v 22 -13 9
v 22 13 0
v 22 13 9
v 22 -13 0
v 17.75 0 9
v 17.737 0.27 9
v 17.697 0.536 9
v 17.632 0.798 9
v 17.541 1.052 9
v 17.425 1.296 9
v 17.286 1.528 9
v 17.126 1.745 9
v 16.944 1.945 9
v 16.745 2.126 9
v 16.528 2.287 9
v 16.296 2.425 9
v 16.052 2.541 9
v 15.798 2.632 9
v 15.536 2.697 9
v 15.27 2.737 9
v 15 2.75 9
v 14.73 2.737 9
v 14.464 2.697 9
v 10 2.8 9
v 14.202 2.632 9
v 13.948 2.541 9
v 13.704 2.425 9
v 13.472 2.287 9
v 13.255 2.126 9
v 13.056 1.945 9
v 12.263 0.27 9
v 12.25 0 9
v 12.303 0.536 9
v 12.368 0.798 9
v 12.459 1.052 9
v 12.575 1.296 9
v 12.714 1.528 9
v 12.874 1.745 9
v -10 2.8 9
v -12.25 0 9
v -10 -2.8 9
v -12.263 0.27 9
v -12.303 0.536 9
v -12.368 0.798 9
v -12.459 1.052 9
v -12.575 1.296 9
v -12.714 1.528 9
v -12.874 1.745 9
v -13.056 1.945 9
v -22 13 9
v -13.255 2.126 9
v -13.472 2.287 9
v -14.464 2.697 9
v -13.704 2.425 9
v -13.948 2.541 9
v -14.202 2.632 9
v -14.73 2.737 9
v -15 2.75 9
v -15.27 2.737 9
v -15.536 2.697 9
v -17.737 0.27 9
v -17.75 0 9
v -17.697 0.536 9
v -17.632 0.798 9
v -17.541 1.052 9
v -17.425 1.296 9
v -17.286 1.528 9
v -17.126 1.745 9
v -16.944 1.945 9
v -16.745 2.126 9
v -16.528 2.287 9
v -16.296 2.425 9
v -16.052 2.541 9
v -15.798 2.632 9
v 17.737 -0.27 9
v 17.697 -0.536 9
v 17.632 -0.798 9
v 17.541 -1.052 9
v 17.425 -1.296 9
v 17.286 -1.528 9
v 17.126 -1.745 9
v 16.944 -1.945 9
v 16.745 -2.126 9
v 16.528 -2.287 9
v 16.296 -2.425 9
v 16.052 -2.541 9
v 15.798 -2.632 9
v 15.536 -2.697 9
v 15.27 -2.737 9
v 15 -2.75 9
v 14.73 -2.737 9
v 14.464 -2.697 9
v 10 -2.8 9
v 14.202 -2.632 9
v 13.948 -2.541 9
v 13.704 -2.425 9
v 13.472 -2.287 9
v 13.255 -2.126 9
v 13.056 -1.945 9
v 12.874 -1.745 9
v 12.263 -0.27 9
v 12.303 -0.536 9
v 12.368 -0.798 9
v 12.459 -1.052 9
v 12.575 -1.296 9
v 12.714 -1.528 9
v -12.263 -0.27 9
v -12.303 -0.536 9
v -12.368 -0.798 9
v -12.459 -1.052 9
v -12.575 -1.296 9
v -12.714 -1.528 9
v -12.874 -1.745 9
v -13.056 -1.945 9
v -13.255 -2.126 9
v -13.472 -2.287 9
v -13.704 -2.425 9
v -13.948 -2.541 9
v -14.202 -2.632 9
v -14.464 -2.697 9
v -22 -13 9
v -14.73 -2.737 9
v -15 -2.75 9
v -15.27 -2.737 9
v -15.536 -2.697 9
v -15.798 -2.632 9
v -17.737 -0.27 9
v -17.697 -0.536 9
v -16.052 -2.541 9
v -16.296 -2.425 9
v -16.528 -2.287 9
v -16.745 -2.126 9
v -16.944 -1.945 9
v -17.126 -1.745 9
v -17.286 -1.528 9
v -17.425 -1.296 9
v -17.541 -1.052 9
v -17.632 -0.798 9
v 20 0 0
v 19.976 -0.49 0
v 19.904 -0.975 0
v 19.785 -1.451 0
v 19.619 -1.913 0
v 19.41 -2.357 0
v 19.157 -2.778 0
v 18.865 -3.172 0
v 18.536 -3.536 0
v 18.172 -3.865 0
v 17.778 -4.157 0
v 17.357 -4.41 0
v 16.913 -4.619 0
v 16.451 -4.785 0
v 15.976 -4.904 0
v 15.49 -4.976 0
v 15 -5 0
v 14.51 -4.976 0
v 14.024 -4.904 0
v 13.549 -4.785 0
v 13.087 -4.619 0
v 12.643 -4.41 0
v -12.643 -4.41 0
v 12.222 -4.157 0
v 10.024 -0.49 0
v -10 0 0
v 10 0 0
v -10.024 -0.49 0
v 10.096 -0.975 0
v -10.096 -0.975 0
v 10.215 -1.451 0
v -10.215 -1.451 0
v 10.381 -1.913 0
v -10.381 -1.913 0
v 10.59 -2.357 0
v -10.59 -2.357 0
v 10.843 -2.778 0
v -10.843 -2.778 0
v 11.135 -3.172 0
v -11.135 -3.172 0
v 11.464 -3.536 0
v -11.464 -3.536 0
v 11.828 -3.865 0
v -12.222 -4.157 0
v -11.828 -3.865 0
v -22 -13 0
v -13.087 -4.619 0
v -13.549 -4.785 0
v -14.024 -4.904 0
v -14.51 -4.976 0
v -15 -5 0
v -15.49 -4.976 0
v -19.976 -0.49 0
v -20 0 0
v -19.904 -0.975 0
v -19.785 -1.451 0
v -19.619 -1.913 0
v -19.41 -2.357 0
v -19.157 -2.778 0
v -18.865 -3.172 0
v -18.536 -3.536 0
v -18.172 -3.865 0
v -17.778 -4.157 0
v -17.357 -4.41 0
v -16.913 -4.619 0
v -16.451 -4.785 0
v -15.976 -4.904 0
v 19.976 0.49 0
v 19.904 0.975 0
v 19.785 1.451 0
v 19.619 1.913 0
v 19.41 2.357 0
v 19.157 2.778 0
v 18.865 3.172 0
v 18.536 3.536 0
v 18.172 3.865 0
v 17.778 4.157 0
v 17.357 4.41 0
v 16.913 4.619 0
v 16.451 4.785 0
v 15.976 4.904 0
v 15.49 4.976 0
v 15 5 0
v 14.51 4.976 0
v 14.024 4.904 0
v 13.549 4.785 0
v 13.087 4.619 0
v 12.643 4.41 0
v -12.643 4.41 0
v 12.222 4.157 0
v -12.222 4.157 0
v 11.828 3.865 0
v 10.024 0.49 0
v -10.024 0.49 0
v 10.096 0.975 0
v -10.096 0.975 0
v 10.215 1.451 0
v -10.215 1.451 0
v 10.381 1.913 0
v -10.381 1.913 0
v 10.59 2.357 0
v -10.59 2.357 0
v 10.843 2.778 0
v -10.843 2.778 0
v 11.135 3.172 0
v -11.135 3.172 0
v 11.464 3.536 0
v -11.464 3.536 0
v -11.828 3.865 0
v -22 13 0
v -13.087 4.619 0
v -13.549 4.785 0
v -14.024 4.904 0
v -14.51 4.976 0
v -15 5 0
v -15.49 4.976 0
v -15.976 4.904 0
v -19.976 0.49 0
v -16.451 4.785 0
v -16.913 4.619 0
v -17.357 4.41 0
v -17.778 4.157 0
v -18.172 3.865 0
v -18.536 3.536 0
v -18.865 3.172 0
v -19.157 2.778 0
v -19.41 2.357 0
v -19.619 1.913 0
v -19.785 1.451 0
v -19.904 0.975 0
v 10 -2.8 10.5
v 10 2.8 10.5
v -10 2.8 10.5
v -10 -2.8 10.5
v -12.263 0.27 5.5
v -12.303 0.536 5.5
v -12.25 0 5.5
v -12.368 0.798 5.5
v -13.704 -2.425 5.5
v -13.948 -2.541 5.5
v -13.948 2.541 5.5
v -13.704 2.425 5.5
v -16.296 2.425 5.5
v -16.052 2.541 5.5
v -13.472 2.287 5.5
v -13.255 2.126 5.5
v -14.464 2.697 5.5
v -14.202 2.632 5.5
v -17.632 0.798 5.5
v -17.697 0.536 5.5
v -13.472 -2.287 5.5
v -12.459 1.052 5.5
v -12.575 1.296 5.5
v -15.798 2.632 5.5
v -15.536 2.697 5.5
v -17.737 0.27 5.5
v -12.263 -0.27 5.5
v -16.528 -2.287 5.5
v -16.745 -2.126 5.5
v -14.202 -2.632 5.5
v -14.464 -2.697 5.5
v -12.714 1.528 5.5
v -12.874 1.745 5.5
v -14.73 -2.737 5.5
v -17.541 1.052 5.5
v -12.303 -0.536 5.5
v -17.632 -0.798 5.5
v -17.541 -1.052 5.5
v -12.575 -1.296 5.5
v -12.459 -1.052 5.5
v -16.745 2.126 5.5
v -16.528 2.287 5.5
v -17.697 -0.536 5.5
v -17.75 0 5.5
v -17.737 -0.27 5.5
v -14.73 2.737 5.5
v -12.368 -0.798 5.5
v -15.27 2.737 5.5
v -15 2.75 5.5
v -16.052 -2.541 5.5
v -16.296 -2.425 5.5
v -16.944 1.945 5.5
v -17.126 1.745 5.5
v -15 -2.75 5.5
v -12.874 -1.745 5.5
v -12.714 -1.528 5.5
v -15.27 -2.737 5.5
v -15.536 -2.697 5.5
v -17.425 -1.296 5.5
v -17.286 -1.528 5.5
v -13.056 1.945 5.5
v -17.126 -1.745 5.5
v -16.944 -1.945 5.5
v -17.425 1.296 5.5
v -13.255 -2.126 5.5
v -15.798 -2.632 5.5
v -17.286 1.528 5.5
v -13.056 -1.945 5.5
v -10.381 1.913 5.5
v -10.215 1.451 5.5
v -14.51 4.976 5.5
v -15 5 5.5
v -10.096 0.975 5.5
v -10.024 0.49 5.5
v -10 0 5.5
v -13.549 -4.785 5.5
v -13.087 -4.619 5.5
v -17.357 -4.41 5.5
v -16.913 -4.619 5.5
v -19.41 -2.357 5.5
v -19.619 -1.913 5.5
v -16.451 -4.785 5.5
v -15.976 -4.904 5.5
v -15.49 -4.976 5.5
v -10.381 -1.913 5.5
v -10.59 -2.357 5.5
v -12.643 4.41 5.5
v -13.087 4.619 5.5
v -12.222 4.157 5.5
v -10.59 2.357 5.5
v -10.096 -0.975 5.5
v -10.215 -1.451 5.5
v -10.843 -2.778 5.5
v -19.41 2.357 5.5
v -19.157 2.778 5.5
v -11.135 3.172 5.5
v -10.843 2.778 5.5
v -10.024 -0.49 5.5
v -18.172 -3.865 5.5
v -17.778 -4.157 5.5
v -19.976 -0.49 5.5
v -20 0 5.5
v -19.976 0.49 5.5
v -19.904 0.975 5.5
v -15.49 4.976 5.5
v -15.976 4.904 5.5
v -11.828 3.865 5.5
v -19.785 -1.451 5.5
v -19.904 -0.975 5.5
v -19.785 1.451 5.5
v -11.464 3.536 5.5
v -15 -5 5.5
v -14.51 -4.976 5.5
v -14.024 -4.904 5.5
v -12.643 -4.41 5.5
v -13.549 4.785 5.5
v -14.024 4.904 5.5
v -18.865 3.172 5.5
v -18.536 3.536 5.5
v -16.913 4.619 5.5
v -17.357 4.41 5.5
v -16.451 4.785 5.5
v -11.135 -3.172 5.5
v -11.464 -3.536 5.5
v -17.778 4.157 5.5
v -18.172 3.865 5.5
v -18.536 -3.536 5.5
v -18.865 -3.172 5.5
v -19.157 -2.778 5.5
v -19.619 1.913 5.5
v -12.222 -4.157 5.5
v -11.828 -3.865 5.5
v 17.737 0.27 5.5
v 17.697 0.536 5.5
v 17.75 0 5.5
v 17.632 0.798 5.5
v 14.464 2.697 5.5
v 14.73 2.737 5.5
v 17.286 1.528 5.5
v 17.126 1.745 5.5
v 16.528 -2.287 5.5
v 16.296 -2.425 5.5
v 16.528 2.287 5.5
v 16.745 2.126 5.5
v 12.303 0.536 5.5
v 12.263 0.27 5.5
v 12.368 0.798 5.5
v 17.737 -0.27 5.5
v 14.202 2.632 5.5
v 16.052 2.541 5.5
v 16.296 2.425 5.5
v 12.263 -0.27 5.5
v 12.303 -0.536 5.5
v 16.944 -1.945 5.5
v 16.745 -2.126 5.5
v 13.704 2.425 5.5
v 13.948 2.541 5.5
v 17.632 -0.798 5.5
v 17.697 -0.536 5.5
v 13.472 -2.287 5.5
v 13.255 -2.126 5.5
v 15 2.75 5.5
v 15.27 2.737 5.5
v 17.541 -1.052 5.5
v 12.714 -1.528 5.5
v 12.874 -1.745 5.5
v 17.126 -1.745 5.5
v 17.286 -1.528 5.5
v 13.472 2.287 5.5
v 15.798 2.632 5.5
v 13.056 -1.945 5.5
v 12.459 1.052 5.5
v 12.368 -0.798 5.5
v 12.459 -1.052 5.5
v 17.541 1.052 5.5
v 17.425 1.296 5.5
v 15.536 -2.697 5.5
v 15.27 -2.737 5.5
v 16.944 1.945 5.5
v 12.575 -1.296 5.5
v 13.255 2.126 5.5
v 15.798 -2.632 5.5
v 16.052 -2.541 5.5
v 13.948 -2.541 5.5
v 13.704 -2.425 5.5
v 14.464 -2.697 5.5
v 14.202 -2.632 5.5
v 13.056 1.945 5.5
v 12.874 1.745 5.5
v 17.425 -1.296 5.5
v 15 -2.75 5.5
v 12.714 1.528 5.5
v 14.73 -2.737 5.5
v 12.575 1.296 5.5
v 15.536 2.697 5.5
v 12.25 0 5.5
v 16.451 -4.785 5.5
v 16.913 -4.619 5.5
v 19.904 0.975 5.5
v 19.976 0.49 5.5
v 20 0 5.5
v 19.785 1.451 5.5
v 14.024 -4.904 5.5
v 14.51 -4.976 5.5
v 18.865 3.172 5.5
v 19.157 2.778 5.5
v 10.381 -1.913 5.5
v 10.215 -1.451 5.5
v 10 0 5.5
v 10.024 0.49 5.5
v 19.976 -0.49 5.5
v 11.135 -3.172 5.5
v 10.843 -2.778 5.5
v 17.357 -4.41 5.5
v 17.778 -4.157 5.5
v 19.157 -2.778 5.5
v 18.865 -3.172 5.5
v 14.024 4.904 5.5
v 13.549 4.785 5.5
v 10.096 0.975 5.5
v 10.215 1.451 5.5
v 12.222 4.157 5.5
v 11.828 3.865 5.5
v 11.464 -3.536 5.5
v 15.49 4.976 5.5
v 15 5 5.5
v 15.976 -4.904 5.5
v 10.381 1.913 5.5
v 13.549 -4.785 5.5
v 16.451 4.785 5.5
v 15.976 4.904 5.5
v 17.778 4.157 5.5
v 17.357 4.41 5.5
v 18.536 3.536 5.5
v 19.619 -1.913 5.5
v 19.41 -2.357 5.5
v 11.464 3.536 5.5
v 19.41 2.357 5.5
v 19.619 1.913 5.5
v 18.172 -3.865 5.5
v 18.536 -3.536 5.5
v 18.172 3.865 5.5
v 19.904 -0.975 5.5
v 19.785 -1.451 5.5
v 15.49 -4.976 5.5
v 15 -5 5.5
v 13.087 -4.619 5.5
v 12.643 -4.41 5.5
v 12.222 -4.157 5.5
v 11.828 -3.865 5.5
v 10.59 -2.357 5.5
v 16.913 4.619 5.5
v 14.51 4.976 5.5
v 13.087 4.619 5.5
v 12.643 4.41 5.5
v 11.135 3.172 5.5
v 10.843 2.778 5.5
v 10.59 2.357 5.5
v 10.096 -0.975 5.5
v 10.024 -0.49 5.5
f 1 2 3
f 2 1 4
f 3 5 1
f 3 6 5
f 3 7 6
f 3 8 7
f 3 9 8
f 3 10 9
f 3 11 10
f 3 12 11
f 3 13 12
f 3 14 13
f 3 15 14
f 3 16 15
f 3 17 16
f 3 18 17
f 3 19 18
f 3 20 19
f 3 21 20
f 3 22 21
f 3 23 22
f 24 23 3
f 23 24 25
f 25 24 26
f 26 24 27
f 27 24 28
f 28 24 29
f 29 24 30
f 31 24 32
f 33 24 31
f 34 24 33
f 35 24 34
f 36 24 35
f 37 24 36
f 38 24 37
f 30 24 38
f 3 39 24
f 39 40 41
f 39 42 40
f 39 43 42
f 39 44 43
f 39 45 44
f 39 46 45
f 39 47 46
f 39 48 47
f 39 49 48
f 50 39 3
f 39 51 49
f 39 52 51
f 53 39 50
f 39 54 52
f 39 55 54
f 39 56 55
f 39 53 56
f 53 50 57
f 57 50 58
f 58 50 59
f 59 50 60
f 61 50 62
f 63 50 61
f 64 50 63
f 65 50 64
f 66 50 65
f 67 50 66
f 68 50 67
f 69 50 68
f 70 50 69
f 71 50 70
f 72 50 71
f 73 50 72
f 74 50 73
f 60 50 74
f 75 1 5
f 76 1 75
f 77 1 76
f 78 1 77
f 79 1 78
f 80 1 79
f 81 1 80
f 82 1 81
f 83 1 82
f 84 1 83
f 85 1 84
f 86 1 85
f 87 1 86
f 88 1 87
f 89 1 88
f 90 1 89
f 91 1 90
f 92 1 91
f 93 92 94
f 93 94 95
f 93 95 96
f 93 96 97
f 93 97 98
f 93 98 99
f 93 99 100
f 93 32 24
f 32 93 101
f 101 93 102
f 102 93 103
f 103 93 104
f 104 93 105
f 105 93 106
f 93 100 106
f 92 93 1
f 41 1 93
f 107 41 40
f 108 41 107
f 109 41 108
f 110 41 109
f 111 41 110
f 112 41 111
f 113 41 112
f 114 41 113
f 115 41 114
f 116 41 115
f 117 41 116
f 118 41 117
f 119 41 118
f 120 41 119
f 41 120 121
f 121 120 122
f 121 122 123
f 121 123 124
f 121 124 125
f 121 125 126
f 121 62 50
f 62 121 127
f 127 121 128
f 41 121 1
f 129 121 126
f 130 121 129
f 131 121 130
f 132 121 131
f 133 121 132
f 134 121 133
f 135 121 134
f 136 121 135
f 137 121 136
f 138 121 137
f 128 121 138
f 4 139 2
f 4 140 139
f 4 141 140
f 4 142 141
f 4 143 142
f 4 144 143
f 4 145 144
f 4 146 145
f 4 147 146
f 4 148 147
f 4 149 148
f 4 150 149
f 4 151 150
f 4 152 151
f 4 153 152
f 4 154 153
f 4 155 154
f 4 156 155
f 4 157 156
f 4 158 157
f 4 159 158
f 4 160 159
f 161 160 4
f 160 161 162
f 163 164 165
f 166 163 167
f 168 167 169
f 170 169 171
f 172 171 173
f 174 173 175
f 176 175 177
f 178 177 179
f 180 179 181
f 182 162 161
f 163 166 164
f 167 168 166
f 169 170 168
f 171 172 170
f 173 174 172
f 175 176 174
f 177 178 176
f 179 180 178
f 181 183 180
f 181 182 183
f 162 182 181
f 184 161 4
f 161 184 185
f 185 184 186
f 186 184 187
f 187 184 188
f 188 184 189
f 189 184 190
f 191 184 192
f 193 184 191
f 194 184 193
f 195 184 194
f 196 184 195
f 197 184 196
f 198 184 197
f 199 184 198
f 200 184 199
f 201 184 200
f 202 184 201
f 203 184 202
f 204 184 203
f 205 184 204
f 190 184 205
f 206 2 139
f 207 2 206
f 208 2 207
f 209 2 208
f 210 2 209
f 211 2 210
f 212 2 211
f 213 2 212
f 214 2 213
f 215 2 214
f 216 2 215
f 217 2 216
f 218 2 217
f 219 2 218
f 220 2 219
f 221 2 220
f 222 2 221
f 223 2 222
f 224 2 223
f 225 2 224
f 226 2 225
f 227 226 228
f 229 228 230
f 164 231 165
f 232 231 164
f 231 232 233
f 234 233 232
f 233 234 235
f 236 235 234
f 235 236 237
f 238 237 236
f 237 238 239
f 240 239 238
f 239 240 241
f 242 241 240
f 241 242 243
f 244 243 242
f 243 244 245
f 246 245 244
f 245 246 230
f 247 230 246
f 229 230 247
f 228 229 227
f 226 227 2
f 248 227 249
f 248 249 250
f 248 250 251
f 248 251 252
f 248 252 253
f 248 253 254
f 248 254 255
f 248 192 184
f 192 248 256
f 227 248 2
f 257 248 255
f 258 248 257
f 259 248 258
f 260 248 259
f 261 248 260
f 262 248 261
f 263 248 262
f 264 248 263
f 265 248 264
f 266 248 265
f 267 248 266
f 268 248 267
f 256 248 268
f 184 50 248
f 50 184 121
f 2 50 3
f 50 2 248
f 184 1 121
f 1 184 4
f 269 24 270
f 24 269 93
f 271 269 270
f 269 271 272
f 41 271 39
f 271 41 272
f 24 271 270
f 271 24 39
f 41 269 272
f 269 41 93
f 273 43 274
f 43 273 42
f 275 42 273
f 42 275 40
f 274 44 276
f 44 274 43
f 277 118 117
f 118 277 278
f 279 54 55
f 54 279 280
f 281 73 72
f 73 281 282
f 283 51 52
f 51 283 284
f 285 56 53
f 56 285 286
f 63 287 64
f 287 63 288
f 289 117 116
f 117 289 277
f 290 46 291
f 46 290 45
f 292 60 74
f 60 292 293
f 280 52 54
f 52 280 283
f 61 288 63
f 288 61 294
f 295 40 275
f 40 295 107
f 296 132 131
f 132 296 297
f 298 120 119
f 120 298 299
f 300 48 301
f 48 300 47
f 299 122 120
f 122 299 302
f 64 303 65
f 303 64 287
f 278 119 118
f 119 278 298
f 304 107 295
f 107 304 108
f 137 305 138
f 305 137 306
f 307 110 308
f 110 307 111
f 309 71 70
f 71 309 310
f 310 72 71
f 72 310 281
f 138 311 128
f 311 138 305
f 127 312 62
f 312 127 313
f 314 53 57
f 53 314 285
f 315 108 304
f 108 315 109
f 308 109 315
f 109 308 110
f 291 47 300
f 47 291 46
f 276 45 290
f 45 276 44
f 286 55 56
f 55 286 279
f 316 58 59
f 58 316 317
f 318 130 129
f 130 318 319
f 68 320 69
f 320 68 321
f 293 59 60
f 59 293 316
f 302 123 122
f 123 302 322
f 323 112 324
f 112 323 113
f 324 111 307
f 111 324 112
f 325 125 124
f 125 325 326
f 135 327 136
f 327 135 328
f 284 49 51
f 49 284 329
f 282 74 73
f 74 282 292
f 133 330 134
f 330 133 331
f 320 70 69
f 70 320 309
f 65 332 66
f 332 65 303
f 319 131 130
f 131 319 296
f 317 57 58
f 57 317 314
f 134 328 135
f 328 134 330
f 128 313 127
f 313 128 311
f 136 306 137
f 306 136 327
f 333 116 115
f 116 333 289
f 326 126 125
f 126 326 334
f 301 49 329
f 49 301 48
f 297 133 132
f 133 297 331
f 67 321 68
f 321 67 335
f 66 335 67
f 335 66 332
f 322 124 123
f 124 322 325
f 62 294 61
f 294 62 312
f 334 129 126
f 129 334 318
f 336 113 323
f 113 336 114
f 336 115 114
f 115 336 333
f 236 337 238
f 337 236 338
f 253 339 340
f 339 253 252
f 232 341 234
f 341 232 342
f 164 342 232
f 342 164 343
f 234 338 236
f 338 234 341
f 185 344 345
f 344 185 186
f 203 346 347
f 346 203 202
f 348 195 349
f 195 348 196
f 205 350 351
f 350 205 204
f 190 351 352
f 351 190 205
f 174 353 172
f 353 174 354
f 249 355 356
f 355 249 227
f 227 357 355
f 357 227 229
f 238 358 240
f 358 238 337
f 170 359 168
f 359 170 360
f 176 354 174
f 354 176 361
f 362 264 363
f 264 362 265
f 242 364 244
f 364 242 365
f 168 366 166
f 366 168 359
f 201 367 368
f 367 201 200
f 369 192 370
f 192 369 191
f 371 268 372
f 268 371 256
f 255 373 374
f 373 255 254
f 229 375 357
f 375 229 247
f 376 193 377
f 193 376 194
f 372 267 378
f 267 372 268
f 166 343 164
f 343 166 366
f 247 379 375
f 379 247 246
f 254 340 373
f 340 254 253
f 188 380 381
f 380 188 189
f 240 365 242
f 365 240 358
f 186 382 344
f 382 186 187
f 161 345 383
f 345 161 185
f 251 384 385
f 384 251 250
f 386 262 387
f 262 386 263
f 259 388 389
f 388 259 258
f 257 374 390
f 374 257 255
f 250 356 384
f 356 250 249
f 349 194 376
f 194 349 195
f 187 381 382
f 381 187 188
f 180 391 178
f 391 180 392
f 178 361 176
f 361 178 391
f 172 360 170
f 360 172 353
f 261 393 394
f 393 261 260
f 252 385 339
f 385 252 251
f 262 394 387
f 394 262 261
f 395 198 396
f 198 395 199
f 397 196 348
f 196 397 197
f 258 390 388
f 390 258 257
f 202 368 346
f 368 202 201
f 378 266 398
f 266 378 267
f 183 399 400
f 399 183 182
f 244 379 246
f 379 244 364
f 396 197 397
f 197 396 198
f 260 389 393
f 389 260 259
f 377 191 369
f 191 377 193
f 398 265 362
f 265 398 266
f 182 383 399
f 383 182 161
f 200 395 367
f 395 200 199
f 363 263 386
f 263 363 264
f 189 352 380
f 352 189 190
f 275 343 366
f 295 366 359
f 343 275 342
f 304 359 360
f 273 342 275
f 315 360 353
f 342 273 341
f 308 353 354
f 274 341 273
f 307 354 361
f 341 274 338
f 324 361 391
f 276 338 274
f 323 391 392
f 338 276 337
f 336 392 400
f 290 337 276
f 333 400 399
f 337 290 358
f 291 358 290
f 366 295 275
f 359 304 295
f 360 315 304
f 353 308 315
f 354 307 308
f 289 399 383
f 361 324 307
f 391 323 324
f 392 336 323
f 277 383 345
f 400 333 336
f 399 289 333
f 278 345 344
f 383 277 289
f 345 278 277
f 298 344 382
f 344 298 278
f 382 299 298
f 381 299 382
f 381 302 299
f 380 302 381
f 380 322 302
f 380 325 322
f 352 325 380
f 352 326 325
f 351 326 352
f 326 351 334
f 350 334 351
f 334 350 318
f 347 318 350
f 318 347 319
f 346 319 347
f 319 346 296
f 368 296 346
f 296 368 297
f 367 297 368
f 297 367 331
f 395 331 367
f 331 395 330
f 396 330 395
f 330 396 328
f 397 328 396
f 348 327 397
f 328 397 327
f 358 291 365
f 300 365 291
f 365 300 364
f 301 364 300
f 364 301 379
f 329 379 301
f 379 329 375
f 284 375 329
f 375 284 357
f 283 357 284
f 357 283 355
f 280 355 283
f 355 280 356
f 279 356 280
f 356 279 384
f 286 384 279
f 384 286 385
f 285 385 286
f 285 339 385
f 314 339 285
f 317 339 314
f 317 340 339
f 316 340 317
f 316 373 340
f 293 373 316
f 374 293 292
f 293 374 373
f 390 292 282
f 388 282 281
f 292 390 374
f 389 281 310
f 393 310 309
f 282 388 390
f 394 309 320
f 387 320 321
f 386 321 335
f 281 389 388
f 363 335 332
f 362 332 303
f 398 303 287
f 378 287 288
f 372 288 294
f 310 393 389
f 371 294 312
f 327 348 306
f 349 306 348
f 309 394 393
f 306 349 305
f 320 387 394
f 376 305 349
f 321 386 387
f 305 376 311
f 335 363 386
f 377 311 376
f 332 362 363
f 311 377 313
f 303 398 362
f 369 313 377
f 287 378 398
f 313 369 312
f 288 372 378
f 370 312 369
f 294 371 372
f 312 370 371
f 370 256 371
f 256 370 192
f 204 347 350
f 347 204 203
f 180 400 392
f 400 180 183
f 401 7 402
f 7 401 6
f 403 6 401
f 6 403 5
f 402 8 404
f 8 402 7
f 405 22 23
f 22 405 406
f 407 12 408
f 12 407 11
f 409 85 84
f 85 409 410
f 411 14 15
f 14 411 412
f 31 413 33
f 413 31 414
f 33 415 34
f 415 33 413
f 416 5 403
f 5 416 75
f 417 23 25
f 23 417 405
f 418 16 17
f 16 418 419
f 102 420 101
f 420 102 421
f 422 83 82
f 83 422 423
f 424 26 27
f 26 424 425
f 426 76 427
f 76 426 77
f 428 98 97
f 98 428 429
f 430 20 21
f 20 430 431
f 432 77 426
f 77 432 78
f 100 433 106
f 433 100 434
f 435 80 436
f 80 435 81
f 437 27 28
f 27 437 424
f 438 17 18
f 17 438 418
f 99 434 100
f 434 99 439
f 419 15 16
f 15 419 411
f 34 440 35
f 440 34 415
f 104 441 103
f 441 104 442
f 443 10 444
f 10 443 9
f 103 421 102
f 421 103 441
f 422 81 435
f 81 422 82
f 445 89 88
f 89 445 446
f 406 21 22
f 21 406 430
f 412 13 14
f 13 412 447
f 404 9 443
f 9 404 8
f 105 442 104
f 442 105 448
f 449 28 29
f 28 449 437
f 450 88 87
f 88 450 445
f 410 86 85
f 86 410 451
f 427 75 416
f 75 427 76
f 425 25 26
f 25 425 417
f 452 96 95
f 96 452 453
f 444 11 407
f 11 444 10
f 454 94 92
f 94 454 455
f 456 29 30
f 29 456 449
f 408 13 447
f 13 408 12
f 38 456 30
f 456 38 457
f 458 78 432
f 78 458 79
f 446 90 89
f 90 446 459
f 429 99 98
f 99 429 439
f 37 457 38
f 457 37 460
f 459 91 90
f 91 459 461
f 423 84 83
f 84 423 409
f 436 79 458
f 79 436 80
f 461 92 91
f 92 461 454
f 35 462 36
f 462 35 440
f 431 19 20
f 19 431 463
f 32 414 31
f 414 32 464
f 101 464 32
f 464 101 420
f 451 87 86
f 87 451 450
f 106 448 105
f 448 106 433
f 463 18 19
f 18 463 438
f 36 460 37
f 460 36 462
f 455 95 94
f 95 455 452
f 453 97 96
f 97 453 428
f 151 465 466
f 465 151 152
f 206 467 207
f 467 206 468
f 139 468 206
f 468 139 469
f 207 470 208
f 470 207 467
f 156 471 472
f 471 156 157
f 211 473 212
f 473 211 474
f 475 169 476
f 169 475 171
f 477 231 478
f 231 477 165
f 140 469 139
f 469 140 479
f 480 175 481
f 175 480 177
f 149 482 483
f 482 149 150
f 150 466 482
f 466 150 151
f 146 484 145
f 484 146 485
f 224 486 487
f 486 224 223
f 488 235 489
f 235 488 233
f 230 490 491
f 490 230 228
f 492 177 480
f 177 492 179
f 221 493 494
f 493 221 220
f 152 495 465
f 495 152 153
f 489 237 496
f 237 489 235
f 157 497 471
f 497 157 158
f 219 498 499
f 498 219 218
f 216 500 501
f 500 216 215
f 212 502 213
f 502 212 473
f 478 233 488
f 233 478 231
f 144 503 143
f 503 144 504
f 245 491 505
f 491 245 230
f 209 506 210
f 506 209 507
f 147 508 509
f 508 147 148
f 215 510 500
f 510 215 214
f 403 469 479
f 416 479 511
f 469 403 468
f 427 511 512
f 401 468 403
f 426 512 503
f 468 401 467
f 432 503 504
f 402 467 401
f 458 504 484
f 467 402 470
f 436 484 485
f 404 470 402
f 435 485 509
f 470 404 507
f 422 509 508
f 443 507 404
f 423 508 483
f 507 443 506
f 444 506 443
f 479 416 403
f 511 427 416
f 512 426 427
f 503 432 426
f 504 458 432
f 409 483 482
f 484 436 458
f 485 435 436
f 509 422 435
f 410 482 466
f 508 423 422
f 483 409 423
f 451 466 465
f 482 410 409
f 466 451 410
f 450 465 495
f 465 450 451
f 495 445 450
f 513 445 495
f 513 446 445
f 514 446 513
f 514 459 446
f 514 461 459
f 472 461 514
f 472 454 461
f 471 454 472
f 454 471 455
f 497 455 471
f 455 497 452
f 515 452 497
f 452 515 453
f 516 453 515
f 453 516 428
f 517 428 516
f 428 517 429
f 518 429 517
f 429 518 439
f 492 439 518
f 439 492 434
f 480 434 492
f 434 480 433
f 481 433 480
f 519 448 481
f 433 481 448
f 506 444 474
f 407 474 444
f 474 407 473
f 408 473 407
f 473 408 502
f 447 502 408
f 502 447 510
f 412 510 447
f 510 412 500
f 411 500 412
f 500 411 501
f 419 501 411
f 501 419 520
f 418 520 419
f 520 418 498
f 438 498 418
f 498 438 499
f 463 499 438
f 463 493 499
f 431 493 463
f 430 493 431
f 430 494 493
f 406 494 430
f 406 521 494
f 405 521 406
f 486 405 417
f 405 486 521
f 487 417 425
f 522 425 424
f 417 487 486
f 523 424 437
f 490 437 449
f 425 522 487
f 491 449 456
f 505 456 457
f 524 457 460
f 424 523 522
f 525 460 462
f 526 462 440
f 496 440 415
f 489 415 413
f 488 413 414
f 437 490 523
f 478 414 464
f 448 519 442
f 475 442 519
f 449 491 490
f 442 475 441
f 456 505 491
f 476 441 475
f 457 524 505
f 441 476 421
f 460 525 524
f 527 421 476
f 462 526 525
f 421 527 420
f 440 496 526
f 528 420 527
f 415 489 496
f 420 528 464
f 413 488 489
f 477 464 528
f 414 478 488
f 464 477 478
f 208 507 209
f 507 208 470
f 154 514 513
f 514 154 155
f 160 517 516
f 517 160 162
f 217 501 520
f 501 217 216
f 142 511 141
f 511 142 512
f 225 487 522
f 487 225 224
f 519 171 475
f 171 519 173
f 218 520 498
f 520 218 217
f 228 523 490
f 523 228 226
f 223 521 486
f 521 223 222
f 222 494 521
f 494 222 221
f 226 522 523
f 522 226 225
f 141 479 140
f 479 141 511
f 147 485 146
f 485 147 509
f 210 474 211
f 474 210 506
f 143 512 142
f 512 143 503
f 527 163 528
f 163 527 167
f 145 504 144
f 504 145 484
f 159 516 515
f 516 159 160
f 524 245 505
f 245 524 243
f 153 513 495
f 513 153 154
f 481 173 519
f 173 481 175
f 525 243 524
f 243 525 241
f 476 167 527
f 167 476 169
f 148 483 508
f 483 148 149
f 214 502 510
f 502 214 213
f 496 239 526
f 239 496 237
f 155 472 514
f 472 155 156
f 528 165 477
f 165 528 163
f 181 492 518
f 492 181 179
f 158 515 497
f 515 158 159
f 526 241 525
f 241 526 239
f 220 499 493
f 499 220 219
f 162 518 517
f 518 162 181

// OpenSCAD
// 2020 アルミフレーム梁の下面に取り付けるプレート
// 下面中央に bar_socket を接着し、バーを梁から真下に吊り下げる。

/* [プレート] */
plate_l = 44;            // 梁の長手方向（座ぐり外側に 2mm 残す）
plate_w = 26;            // 梁と直交方向（bar_socket の幅 25.4 を受ける）
plate_t = 9;             // 厚さ

/* [2020 溝] */
key_w = 5.6;             // 溝幅 6mm に入る突起
key_h = 1.5;             // 突起高さ
key_l = 20;              // 突起長さ（ボルト穴の間に収める）

/* [ボルト] */
bolt_pitch = 30;         // M5 ボルト間隔
hole_d = 5.5;            // M5 通し穴
cb_d = 10;               // 座ぐり径
cb_depth = 5.5;          // 座ぐり深さ（キャップボルト頭が沈む）

$fn = 64;

// 座標: 下面（接着面・座ぐり側）が Z=0、梁に接する面が Z=plate_t
module frame_mount() {
    difference() {
        union() {
            translate([-plate_l / 2, -plate_w / 2, 0])
                cube([plate_l, plate_w, plate_t]);
            translate([-key_l / 2, -key_w / 2, plate_t - 0.01])
                cube([key_l, key_w, key_h + 0.01]);
        }
        for (x = [-bolt_pitch / 2, bolt_pitch / 2]) {
            translate([x, 0, -2])
                cylinder(d = hole_d, h = plate_t + key_h + 4);
            translate([x, 0, -1])
                cylinder(d = cb_d, h = cb_depth + 1);
        }
    }
}

frame_mount();
